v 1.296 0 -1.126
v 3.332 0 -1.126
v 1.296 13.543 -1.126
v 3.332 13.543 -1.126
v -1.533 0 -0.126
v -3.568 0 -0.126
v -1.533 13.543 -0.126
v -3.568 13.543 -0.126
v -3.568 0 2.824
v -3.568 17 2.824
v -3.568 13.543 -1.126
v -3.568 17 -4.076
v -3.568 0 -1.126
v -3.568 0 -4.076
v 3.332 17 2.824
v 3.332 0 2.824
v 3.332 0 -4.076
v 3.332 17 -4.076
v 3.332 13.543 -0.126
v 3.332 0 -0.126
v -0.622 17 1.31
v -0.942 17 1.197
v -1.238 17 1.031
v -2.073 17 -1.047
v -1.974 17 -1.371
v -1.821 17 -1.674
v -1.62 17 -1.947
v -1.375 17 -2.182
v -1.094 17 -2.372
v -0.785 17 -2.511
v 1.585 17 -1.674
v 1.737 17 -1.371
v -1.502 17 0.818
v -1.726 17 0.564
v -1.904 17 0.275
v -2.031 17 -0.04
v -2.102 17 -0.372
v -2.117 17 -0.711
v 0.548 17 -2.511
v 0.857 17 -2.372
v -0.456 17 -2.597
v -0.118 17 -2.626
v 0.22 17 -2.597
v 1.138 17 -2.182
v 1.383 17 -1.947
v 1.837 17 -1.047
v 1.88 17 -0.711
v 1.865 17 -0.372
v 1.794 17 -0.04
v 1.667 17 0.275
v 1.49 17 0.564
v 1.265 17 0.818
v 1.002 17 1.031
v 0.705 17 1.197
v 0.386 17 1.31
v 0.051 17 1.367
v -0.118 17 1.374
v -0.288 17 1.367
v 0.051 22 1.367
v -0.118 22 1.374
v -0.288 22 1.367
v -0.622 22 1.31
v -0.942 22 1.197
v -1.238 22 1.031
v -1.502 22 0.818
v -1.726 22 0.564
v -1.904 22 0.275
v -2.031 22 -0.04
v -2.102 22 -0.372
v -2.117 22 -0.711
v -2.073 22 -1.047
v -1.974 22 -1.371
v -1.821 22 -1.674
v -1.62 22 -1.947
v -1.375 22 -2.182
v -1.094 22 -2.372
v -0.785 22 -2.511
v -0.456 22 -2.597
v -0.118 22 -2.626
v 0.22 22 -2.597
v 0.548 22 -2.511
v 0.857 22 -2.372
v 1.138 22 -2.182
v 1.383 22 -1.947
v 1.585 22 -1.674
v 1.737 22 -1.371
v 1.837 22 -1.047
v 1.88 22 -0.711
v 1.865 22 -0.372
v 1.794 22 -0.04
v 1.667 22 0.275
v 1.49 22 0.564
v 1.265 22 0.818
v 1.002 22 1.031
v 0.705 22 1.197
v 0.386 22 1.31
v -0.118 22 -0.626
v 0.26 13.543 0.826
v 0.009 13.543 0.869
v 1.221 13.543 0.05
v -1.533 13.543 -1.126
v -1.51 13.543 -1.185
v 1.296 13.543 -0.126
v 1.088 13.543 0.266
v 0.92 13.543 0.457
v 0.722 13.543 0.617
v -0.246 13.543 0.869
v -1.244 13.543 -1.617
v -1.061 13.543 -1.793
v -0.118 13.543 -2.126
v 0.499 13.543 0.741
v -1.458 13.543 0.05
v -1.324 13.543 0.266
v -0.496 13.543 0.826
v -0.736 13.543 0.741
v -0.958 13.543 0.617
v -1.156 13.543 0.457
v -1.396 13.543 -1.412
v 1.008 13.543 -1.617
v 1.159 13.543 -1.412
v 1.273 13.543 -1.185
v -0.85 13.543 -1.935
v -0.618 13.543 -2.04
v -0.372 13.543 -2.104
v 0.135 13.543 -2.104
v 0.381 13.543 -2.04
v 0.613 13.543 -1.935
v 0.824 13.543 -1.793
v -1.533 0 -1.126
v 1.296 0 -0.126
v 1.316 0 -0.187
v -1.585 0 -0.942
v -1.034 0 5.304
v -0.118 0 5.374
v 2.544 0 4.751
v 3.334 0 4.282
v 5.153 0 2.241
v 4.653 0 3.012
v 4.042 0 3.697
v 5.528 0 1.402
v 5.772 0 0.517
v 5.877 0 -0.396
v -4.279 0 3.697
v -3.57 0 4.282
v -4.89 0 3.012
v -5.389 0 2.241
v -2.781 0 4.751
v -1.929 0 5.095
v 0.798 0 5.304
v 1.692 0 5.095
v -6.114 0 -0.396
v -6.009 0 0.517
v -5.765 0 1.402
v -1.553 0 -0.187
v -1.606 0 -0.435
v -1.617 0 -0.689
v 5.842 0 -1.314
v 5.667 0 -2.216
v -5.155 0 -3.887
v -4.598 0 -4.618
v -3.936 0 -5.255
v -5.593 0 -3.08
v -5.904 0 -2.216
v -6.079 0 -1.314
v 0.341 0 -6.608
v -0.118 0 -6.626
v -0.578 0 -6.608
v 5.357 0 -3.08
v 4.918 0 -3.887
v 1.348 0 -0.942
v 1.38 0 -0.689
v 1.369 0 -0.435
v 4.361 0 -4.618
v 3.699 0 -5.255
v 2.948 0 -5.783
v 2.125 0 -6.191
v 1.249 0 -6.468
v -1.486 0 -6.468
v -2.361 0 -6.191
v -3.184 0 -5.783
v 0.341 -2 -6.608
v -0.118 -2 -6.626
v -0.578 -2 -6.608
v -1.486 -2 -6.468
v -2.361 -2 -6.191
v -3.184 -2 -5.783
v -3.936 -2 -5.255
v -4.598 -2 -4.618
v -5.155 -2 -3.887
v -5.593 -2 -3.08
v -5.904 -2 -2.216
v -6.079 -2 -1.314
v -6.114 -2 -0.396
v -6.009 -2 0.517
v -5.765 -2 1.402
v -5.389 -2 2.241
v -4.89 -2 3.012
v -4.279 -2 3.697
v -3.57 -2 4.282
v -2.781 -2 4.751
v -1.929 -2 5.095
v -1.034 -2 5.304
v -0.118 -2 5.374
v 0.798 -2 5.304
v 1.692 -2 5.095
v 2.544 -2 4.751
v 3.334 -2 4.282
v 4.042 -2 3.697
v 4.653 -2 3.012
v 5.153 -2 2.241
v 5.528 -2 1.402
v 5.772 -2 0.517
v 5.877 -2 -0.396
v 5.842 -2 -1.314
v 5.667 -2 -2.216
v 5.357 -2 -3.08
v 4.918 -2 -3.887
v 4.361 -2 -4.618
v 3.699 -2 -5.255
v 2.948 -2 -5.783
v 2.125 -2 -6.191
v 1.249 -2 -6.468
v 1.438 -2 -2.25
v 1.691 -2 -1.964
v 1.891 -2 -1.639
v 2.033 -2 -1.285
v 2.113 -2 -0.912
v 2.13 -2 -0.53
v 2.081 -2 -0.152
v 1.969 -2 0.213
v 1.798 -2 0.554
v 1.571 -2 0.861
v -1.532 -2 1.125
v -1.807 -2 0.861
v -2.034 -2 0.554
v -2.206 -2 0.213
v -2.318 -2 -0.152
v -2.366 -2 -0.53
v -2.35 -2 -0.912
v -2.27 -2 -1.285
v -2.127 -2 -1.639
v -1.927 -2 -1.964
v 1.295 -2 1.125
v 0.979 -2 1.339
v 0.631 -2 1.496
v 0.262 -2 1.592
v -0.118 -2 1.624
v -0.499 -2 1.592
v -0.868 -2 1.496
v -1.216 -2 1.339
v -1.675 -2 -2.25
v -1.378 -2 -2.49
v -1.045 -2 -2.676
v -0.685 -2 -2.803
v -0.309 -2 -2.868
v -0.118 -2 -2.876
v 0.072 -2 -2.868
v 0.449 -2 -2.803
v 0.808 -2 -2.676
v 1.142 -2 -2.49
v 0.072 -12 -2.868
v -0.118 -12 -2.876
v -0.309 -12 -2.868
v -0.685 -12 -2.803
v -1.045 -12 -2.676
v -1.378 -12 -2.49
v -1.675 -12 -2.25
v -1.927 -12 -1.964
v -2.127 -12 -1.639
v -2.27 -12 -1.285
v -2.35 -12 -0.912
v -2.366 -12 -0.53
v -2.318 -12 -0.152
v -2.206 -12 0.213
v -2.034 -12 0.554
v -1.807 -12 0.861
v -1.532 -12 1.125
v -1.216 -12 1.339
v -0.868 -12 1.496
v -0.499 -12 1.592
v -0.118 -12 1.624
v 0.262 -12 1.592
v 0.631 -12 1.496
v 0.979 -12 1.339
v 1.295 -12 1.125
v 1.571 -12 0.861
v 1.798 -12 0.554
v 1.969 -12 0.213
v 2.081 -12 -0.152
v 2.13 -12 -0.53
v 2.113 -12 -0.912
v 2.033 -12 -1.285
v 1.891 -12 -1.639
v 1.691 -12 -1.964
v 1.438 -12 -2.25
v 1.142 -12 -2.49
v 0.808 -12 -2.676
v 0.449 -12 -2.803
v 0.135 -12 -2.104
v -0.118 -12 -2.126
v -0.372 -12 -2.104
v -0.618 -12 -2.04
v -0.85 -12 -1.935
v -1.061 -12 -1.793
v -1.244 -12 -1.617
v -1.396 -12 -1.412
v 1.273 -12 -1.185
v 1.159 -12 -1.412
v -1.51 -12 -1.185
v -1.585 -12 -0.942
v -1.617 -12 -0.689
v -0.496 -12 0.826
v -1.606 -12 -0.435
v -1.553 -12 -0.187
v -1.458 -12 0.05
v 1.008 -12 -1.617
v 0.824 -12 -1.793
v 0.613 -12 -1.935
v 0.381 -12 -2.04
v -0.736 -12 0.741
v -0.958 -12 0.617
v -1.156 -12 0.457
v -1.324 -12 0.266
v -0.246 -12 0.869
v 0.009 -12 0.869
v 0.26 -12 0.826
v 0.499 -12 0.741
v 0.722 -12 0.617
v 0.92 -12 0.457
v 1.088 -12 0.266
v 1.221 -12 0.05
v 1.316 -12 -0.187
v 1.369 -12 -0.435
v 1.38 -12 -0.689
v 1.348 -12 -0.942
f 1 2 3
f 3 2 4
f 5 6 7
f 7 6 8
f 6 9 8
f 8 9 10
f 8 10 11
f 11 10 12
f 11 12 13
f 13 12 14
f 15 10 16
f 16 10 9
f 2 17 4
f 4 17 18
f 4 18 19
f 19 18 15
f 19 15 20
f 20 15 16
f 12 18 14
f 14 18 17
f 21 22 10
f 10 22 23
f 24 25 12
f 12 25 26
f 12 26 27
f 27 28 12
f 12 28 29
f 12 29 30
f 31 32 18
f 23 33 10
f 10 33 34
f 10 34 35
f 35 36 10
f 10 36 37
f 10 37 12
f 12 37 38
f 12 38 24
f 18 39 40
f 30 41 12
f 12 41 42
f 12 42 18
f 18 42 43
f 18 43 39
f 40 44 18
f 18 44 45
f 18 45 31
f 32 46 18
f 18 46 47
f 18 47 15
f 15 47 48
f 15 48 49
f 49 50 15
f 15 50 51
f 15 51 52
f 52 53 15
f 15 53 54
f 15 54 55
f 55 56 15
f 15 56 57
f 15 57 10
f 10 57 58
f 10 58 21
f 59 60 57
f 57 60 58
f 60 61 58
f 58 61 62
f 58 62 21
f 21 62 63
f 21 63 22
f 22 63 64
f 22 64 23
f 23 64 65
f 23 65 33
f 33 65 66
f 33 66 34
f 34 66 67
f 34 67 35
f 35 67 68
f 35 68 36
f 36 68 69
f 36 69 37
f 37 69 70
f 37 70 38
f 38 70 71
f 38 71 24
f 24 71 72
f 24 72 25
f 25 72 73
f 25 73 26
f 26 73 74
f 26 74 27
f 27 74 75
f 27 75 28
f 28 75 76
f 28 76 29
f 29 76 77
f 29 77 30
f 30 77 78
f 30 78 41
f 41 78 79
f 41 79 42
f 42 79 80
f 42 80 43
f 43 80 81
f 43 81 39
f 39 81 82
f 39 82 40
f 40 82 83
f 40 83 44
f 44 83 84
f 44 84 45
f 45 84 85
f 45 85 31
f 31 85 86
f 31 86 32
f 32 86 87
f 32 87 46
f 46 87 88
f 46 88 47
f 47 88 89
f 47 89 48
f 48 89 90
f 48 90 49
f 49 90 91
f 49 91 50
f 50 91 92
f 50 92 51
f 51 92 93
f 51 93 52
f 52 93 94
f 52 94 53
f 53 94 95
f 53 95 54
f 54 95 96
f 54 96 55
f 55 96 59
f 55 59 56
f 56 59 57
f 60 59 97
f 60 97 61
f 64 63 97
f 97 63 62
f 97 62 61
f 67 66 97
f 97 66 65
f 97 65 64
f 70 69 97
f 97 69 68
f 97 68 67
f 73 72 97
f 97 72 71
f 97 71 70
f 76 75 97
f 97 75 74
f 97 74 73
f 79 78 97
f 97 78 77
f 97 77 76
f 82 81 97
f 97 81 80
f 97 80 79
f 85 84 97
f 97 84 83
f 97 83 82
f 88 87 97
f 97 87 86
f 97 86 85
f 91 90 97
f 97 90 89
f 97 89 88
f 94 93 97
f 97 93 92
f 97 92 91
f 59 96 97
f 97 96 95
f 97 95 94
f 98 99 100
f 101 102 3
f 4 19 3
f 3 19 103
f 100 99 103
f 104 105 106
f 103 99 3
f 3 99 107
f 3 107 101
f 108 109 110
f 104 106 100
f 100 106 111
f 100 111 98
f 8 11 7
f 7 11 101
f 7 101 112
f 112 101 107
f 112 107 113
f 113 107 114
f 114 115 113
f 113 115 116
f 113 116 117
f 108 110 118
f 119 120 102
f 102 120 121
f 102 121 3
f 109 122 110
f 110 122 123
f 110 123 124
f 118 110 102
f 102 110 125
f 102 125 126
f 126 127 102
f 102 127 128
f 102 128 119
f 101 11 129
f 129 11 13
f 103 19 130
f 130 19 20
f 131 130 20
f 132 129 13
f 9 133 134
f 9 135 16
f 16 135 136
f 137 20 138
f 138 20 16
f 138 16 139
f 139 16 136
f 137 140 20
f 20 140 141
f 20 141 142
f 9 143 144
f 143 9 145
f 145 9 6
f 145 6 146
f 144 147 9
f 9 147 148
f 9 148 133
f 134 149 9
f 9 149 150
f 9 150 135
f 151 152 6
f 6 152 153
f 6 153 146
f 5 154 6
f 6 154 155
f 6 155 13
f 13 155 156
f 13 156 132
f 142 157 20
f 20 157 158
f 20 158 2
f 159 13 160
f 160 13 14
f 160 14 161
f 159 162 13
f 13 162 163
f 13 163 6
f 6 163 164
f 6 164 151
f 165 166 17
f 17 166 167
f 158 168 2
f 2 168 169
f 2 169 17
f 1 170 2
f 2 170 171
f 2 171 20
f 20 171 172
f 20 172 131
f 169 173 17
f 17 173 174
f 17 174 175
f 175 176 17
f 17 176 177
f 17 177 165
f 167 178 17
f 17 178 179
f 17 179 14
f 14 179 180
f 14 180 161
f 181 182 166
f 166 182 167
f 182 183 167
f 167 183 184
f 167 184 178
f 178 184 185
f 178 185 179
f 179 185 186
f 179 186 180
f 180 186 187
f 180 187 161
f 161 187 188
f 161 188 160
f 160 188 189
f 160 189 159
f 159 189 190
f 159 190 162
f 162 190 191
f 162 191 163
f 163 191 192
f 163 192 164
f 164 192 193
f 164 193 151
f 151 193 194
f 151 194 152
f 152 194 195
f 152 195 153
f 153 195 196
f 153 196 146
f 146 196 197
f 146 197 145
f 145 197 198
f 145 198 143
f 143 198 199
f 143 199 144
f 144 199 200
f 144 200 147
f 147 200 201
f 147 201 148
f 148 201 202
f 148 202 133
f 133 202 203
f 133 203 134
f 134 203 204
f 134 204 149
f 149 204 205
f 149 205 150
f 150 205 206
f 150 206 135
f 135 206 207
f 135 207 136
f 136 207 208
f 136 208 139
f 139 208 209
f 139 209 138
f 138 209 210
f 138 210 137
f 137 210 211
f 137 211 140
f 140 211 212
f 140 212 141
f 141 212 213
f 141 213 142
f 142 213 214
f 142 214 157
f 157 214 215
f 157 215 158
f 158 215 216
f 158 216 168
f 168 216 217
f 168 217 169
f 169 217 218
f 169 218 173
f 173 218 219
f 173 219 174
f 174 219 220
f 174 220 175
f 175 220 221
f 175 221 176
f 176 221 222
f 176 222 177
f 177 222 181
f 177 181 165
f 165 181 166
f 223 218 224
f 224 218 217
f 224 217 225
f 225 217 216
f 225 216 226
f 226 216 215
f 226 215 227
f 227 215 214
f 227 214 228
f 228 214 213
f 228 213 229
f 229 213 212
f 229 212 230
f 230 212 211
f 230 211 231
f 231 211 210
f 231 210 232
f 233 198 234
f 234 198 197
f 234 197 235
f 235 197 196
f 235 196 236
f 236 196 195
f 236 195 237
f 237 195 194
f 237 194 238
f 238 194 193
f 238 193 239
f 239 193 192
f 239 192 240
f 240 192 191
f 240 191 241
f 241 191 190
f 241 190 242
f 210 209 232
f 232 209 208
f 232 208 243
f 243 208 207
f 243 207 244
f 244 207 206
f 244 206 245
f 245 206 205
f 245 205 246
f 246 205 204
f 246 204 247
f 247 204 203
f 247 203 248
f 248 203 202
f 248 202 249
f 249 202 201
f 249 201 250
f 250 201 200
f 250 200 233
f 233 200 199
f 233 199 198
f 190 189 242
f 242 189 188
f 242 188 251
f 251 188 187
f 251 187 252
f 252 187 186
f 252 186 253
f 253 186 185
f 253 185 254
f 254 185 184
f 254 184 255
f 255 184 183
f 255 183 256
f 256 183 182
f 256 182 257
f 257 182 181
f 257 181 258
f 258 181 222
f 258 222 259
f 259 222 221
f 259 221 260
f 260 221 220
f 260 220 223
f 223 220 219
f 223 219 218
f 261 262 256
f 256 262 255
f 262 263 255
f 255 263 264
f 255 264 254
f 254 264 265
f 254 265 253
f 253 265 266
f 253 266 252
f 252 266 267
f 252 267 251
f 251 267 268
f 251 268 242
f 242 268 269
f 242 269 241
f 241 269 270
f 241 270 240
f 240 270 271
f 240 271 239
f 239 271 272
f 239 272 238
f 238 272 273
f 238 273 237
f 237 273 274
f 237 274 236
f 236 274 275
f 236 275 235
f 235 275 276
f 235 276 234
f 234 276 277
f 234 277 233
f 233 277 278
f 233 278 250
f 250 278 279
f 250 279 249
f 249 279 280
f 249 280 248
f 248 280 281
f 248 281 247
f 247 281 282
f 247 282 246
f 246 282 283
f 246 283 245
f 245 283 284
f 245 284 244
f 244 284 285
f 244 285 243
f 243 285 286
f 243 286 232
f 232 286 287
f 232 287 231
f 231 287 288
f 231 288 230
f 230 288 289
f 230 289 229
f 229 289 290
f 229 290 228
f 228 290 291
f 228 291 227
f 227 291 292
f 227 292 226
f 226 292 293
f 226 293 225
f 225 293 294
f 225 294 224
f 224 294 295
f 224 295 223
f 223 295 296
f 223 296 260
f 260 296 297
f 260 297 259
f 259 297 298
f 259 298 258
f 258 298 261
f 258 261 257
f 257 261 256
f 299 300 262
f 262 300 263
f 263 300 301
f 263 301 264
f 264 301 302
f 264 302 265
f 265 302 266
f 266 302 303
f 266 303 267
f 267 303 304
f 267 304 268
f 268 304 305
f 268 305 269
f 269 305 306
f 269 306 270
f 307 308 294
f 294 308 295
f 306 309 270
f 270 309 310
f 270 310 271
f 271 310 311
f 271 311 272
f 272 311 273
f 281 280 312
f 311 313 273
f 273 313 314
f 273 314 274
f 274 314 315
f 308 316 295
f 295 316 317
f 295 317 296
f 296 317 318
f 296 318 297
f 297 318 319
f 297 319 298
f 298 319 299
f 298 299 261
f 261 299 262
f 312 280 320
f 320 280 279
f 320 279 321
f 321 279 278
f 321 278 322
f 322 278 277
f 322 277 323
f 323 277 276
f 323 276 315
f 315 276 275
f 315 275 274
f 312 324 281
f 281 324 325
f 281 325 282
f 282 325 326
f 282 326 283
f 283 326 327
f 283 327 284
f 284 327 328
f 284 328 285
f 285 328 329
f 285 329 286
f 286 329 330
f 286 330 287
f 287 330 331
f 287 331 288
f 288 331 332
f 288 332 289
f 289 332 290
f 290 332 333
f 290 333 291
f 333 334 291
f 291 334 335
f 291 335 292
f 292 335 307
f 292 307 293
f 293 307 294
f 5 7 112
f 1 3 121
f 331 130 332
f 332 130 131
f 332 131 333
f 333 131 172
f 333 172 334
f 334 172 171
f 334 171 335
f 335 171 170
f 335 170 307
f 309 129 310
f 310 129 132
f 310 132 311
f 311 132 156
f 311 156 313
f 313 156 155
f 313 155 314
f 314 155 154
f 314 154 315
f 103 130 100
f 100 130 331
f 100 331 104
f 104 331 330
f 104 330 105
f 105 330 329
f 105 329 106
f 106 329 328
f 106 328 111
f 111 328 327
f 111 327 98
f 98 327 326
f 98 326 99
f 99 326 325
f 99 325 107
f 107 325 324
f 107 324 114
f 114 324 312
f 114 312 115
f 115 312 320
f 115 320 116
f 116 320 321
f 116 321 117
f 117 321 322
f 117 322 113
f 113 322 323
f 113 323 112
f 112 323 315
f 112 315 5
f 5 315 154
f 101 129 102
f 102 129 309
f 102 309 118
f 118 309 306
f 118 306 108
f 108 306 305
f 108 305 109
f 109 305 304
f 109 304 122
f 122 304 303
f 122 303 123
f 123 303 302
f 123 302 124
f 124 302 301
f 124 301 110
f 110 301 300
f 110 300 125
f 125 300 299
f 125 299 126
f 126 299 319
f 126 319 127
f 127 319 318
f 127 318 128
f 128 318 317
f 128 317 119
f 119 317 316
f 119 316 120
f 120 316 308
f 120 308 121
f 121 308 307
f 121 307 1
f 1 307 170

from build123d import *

# Parameters (mm, degrees)
SKETCH_2_W          = 6.9
SKETCH_2_H          = 6.9
EXTRUDE_1_DEPTH     = 17
SKETCH_3_R          = 2
EXTRUDE_2_DEPTH     = 5
SKETCH_4_W          = 1
SKETCH_4_H          = 13.542540749
CUT_EXTRUDE_1_DEPTH = 15
SKETCH_5_R          = 6
EXTRUDE_3_DEPTH     = 2
SKETCH_6_R          = 2.25
EXTRUDE_4_DEPTH     = 10
SKETCH_7_R          = 1.5
CUT_EXTRUDE_2_DEPTH = 25.542541


with BuildPart() as part:
    # 草图2 → 凸台-拉伸1 (new body)
    with BuildSketch(Plane(origin=(0, 0, 0), x_dir=(1, 0, 0), z_dir=(0, 1, 0))):
        with Locations((-0.118382353, 0.625735294)):
            Rectangle(SKETCH_2_W, SKETCH_2_H)
    extrude(amount=EXTRUDE_1_DEPTH)

    # 草图3 → 凸台-拉伸2 (add)
    with BuildSketch(Plane(origin=(0, 17, 0), x_dir=(1, 0, 0), z_dir=(0, 1, 0))):
        with Locations((-0.118382353, 0.625735294)):
            Circle(SKETCH_3_R)
    extrude(amount=EXTRUDE_2_DEPTH)

    # 草图4 → 切除-拉伸1 (cut)
    with BuildSketch(Plane.ZY.offset(3.568382353)):
        with Locations((-0.625735294, 6.771270375)):
            Rectangle(SKETCH_4_W, SKETCH_4_H)
    extrude(amount=-CUT_EXTRUDE_1_DEPTH, mode=Mode.SUBTRACT)

    # 草图5 → 凸台-拉伸3 (add)
    with BuildSketch(Plane.XZ):
        with Locations((-0.118382353, -0.625735294)):
            Circle(SKETCH_5_R)
    extrude(amount=EXTRUDE_3_DEPTH)

    # 草图6 → 凸台-拉伸4 (add)
    with BuildSketch(Plane.XZ.offset(2)):
        with Locations((-0.118382353, -0.625735294)):
            Circle(SKETCH_6_R)
    extrude(amount=EXTRUDE_4_DEPTH)

    # 草图7 → 切除-拉伸2 (cut)
    with BuildSketch(Plane.XZ.offset(12)):
        with Locations((-0.118382353, -0.625735294)):
            Circle(SKETCH_7_R)
    extrude(amount=-CUT_EXTRUDE_2_DEPTH, mode=Mode.SUBTRACT)


solid = part.part
